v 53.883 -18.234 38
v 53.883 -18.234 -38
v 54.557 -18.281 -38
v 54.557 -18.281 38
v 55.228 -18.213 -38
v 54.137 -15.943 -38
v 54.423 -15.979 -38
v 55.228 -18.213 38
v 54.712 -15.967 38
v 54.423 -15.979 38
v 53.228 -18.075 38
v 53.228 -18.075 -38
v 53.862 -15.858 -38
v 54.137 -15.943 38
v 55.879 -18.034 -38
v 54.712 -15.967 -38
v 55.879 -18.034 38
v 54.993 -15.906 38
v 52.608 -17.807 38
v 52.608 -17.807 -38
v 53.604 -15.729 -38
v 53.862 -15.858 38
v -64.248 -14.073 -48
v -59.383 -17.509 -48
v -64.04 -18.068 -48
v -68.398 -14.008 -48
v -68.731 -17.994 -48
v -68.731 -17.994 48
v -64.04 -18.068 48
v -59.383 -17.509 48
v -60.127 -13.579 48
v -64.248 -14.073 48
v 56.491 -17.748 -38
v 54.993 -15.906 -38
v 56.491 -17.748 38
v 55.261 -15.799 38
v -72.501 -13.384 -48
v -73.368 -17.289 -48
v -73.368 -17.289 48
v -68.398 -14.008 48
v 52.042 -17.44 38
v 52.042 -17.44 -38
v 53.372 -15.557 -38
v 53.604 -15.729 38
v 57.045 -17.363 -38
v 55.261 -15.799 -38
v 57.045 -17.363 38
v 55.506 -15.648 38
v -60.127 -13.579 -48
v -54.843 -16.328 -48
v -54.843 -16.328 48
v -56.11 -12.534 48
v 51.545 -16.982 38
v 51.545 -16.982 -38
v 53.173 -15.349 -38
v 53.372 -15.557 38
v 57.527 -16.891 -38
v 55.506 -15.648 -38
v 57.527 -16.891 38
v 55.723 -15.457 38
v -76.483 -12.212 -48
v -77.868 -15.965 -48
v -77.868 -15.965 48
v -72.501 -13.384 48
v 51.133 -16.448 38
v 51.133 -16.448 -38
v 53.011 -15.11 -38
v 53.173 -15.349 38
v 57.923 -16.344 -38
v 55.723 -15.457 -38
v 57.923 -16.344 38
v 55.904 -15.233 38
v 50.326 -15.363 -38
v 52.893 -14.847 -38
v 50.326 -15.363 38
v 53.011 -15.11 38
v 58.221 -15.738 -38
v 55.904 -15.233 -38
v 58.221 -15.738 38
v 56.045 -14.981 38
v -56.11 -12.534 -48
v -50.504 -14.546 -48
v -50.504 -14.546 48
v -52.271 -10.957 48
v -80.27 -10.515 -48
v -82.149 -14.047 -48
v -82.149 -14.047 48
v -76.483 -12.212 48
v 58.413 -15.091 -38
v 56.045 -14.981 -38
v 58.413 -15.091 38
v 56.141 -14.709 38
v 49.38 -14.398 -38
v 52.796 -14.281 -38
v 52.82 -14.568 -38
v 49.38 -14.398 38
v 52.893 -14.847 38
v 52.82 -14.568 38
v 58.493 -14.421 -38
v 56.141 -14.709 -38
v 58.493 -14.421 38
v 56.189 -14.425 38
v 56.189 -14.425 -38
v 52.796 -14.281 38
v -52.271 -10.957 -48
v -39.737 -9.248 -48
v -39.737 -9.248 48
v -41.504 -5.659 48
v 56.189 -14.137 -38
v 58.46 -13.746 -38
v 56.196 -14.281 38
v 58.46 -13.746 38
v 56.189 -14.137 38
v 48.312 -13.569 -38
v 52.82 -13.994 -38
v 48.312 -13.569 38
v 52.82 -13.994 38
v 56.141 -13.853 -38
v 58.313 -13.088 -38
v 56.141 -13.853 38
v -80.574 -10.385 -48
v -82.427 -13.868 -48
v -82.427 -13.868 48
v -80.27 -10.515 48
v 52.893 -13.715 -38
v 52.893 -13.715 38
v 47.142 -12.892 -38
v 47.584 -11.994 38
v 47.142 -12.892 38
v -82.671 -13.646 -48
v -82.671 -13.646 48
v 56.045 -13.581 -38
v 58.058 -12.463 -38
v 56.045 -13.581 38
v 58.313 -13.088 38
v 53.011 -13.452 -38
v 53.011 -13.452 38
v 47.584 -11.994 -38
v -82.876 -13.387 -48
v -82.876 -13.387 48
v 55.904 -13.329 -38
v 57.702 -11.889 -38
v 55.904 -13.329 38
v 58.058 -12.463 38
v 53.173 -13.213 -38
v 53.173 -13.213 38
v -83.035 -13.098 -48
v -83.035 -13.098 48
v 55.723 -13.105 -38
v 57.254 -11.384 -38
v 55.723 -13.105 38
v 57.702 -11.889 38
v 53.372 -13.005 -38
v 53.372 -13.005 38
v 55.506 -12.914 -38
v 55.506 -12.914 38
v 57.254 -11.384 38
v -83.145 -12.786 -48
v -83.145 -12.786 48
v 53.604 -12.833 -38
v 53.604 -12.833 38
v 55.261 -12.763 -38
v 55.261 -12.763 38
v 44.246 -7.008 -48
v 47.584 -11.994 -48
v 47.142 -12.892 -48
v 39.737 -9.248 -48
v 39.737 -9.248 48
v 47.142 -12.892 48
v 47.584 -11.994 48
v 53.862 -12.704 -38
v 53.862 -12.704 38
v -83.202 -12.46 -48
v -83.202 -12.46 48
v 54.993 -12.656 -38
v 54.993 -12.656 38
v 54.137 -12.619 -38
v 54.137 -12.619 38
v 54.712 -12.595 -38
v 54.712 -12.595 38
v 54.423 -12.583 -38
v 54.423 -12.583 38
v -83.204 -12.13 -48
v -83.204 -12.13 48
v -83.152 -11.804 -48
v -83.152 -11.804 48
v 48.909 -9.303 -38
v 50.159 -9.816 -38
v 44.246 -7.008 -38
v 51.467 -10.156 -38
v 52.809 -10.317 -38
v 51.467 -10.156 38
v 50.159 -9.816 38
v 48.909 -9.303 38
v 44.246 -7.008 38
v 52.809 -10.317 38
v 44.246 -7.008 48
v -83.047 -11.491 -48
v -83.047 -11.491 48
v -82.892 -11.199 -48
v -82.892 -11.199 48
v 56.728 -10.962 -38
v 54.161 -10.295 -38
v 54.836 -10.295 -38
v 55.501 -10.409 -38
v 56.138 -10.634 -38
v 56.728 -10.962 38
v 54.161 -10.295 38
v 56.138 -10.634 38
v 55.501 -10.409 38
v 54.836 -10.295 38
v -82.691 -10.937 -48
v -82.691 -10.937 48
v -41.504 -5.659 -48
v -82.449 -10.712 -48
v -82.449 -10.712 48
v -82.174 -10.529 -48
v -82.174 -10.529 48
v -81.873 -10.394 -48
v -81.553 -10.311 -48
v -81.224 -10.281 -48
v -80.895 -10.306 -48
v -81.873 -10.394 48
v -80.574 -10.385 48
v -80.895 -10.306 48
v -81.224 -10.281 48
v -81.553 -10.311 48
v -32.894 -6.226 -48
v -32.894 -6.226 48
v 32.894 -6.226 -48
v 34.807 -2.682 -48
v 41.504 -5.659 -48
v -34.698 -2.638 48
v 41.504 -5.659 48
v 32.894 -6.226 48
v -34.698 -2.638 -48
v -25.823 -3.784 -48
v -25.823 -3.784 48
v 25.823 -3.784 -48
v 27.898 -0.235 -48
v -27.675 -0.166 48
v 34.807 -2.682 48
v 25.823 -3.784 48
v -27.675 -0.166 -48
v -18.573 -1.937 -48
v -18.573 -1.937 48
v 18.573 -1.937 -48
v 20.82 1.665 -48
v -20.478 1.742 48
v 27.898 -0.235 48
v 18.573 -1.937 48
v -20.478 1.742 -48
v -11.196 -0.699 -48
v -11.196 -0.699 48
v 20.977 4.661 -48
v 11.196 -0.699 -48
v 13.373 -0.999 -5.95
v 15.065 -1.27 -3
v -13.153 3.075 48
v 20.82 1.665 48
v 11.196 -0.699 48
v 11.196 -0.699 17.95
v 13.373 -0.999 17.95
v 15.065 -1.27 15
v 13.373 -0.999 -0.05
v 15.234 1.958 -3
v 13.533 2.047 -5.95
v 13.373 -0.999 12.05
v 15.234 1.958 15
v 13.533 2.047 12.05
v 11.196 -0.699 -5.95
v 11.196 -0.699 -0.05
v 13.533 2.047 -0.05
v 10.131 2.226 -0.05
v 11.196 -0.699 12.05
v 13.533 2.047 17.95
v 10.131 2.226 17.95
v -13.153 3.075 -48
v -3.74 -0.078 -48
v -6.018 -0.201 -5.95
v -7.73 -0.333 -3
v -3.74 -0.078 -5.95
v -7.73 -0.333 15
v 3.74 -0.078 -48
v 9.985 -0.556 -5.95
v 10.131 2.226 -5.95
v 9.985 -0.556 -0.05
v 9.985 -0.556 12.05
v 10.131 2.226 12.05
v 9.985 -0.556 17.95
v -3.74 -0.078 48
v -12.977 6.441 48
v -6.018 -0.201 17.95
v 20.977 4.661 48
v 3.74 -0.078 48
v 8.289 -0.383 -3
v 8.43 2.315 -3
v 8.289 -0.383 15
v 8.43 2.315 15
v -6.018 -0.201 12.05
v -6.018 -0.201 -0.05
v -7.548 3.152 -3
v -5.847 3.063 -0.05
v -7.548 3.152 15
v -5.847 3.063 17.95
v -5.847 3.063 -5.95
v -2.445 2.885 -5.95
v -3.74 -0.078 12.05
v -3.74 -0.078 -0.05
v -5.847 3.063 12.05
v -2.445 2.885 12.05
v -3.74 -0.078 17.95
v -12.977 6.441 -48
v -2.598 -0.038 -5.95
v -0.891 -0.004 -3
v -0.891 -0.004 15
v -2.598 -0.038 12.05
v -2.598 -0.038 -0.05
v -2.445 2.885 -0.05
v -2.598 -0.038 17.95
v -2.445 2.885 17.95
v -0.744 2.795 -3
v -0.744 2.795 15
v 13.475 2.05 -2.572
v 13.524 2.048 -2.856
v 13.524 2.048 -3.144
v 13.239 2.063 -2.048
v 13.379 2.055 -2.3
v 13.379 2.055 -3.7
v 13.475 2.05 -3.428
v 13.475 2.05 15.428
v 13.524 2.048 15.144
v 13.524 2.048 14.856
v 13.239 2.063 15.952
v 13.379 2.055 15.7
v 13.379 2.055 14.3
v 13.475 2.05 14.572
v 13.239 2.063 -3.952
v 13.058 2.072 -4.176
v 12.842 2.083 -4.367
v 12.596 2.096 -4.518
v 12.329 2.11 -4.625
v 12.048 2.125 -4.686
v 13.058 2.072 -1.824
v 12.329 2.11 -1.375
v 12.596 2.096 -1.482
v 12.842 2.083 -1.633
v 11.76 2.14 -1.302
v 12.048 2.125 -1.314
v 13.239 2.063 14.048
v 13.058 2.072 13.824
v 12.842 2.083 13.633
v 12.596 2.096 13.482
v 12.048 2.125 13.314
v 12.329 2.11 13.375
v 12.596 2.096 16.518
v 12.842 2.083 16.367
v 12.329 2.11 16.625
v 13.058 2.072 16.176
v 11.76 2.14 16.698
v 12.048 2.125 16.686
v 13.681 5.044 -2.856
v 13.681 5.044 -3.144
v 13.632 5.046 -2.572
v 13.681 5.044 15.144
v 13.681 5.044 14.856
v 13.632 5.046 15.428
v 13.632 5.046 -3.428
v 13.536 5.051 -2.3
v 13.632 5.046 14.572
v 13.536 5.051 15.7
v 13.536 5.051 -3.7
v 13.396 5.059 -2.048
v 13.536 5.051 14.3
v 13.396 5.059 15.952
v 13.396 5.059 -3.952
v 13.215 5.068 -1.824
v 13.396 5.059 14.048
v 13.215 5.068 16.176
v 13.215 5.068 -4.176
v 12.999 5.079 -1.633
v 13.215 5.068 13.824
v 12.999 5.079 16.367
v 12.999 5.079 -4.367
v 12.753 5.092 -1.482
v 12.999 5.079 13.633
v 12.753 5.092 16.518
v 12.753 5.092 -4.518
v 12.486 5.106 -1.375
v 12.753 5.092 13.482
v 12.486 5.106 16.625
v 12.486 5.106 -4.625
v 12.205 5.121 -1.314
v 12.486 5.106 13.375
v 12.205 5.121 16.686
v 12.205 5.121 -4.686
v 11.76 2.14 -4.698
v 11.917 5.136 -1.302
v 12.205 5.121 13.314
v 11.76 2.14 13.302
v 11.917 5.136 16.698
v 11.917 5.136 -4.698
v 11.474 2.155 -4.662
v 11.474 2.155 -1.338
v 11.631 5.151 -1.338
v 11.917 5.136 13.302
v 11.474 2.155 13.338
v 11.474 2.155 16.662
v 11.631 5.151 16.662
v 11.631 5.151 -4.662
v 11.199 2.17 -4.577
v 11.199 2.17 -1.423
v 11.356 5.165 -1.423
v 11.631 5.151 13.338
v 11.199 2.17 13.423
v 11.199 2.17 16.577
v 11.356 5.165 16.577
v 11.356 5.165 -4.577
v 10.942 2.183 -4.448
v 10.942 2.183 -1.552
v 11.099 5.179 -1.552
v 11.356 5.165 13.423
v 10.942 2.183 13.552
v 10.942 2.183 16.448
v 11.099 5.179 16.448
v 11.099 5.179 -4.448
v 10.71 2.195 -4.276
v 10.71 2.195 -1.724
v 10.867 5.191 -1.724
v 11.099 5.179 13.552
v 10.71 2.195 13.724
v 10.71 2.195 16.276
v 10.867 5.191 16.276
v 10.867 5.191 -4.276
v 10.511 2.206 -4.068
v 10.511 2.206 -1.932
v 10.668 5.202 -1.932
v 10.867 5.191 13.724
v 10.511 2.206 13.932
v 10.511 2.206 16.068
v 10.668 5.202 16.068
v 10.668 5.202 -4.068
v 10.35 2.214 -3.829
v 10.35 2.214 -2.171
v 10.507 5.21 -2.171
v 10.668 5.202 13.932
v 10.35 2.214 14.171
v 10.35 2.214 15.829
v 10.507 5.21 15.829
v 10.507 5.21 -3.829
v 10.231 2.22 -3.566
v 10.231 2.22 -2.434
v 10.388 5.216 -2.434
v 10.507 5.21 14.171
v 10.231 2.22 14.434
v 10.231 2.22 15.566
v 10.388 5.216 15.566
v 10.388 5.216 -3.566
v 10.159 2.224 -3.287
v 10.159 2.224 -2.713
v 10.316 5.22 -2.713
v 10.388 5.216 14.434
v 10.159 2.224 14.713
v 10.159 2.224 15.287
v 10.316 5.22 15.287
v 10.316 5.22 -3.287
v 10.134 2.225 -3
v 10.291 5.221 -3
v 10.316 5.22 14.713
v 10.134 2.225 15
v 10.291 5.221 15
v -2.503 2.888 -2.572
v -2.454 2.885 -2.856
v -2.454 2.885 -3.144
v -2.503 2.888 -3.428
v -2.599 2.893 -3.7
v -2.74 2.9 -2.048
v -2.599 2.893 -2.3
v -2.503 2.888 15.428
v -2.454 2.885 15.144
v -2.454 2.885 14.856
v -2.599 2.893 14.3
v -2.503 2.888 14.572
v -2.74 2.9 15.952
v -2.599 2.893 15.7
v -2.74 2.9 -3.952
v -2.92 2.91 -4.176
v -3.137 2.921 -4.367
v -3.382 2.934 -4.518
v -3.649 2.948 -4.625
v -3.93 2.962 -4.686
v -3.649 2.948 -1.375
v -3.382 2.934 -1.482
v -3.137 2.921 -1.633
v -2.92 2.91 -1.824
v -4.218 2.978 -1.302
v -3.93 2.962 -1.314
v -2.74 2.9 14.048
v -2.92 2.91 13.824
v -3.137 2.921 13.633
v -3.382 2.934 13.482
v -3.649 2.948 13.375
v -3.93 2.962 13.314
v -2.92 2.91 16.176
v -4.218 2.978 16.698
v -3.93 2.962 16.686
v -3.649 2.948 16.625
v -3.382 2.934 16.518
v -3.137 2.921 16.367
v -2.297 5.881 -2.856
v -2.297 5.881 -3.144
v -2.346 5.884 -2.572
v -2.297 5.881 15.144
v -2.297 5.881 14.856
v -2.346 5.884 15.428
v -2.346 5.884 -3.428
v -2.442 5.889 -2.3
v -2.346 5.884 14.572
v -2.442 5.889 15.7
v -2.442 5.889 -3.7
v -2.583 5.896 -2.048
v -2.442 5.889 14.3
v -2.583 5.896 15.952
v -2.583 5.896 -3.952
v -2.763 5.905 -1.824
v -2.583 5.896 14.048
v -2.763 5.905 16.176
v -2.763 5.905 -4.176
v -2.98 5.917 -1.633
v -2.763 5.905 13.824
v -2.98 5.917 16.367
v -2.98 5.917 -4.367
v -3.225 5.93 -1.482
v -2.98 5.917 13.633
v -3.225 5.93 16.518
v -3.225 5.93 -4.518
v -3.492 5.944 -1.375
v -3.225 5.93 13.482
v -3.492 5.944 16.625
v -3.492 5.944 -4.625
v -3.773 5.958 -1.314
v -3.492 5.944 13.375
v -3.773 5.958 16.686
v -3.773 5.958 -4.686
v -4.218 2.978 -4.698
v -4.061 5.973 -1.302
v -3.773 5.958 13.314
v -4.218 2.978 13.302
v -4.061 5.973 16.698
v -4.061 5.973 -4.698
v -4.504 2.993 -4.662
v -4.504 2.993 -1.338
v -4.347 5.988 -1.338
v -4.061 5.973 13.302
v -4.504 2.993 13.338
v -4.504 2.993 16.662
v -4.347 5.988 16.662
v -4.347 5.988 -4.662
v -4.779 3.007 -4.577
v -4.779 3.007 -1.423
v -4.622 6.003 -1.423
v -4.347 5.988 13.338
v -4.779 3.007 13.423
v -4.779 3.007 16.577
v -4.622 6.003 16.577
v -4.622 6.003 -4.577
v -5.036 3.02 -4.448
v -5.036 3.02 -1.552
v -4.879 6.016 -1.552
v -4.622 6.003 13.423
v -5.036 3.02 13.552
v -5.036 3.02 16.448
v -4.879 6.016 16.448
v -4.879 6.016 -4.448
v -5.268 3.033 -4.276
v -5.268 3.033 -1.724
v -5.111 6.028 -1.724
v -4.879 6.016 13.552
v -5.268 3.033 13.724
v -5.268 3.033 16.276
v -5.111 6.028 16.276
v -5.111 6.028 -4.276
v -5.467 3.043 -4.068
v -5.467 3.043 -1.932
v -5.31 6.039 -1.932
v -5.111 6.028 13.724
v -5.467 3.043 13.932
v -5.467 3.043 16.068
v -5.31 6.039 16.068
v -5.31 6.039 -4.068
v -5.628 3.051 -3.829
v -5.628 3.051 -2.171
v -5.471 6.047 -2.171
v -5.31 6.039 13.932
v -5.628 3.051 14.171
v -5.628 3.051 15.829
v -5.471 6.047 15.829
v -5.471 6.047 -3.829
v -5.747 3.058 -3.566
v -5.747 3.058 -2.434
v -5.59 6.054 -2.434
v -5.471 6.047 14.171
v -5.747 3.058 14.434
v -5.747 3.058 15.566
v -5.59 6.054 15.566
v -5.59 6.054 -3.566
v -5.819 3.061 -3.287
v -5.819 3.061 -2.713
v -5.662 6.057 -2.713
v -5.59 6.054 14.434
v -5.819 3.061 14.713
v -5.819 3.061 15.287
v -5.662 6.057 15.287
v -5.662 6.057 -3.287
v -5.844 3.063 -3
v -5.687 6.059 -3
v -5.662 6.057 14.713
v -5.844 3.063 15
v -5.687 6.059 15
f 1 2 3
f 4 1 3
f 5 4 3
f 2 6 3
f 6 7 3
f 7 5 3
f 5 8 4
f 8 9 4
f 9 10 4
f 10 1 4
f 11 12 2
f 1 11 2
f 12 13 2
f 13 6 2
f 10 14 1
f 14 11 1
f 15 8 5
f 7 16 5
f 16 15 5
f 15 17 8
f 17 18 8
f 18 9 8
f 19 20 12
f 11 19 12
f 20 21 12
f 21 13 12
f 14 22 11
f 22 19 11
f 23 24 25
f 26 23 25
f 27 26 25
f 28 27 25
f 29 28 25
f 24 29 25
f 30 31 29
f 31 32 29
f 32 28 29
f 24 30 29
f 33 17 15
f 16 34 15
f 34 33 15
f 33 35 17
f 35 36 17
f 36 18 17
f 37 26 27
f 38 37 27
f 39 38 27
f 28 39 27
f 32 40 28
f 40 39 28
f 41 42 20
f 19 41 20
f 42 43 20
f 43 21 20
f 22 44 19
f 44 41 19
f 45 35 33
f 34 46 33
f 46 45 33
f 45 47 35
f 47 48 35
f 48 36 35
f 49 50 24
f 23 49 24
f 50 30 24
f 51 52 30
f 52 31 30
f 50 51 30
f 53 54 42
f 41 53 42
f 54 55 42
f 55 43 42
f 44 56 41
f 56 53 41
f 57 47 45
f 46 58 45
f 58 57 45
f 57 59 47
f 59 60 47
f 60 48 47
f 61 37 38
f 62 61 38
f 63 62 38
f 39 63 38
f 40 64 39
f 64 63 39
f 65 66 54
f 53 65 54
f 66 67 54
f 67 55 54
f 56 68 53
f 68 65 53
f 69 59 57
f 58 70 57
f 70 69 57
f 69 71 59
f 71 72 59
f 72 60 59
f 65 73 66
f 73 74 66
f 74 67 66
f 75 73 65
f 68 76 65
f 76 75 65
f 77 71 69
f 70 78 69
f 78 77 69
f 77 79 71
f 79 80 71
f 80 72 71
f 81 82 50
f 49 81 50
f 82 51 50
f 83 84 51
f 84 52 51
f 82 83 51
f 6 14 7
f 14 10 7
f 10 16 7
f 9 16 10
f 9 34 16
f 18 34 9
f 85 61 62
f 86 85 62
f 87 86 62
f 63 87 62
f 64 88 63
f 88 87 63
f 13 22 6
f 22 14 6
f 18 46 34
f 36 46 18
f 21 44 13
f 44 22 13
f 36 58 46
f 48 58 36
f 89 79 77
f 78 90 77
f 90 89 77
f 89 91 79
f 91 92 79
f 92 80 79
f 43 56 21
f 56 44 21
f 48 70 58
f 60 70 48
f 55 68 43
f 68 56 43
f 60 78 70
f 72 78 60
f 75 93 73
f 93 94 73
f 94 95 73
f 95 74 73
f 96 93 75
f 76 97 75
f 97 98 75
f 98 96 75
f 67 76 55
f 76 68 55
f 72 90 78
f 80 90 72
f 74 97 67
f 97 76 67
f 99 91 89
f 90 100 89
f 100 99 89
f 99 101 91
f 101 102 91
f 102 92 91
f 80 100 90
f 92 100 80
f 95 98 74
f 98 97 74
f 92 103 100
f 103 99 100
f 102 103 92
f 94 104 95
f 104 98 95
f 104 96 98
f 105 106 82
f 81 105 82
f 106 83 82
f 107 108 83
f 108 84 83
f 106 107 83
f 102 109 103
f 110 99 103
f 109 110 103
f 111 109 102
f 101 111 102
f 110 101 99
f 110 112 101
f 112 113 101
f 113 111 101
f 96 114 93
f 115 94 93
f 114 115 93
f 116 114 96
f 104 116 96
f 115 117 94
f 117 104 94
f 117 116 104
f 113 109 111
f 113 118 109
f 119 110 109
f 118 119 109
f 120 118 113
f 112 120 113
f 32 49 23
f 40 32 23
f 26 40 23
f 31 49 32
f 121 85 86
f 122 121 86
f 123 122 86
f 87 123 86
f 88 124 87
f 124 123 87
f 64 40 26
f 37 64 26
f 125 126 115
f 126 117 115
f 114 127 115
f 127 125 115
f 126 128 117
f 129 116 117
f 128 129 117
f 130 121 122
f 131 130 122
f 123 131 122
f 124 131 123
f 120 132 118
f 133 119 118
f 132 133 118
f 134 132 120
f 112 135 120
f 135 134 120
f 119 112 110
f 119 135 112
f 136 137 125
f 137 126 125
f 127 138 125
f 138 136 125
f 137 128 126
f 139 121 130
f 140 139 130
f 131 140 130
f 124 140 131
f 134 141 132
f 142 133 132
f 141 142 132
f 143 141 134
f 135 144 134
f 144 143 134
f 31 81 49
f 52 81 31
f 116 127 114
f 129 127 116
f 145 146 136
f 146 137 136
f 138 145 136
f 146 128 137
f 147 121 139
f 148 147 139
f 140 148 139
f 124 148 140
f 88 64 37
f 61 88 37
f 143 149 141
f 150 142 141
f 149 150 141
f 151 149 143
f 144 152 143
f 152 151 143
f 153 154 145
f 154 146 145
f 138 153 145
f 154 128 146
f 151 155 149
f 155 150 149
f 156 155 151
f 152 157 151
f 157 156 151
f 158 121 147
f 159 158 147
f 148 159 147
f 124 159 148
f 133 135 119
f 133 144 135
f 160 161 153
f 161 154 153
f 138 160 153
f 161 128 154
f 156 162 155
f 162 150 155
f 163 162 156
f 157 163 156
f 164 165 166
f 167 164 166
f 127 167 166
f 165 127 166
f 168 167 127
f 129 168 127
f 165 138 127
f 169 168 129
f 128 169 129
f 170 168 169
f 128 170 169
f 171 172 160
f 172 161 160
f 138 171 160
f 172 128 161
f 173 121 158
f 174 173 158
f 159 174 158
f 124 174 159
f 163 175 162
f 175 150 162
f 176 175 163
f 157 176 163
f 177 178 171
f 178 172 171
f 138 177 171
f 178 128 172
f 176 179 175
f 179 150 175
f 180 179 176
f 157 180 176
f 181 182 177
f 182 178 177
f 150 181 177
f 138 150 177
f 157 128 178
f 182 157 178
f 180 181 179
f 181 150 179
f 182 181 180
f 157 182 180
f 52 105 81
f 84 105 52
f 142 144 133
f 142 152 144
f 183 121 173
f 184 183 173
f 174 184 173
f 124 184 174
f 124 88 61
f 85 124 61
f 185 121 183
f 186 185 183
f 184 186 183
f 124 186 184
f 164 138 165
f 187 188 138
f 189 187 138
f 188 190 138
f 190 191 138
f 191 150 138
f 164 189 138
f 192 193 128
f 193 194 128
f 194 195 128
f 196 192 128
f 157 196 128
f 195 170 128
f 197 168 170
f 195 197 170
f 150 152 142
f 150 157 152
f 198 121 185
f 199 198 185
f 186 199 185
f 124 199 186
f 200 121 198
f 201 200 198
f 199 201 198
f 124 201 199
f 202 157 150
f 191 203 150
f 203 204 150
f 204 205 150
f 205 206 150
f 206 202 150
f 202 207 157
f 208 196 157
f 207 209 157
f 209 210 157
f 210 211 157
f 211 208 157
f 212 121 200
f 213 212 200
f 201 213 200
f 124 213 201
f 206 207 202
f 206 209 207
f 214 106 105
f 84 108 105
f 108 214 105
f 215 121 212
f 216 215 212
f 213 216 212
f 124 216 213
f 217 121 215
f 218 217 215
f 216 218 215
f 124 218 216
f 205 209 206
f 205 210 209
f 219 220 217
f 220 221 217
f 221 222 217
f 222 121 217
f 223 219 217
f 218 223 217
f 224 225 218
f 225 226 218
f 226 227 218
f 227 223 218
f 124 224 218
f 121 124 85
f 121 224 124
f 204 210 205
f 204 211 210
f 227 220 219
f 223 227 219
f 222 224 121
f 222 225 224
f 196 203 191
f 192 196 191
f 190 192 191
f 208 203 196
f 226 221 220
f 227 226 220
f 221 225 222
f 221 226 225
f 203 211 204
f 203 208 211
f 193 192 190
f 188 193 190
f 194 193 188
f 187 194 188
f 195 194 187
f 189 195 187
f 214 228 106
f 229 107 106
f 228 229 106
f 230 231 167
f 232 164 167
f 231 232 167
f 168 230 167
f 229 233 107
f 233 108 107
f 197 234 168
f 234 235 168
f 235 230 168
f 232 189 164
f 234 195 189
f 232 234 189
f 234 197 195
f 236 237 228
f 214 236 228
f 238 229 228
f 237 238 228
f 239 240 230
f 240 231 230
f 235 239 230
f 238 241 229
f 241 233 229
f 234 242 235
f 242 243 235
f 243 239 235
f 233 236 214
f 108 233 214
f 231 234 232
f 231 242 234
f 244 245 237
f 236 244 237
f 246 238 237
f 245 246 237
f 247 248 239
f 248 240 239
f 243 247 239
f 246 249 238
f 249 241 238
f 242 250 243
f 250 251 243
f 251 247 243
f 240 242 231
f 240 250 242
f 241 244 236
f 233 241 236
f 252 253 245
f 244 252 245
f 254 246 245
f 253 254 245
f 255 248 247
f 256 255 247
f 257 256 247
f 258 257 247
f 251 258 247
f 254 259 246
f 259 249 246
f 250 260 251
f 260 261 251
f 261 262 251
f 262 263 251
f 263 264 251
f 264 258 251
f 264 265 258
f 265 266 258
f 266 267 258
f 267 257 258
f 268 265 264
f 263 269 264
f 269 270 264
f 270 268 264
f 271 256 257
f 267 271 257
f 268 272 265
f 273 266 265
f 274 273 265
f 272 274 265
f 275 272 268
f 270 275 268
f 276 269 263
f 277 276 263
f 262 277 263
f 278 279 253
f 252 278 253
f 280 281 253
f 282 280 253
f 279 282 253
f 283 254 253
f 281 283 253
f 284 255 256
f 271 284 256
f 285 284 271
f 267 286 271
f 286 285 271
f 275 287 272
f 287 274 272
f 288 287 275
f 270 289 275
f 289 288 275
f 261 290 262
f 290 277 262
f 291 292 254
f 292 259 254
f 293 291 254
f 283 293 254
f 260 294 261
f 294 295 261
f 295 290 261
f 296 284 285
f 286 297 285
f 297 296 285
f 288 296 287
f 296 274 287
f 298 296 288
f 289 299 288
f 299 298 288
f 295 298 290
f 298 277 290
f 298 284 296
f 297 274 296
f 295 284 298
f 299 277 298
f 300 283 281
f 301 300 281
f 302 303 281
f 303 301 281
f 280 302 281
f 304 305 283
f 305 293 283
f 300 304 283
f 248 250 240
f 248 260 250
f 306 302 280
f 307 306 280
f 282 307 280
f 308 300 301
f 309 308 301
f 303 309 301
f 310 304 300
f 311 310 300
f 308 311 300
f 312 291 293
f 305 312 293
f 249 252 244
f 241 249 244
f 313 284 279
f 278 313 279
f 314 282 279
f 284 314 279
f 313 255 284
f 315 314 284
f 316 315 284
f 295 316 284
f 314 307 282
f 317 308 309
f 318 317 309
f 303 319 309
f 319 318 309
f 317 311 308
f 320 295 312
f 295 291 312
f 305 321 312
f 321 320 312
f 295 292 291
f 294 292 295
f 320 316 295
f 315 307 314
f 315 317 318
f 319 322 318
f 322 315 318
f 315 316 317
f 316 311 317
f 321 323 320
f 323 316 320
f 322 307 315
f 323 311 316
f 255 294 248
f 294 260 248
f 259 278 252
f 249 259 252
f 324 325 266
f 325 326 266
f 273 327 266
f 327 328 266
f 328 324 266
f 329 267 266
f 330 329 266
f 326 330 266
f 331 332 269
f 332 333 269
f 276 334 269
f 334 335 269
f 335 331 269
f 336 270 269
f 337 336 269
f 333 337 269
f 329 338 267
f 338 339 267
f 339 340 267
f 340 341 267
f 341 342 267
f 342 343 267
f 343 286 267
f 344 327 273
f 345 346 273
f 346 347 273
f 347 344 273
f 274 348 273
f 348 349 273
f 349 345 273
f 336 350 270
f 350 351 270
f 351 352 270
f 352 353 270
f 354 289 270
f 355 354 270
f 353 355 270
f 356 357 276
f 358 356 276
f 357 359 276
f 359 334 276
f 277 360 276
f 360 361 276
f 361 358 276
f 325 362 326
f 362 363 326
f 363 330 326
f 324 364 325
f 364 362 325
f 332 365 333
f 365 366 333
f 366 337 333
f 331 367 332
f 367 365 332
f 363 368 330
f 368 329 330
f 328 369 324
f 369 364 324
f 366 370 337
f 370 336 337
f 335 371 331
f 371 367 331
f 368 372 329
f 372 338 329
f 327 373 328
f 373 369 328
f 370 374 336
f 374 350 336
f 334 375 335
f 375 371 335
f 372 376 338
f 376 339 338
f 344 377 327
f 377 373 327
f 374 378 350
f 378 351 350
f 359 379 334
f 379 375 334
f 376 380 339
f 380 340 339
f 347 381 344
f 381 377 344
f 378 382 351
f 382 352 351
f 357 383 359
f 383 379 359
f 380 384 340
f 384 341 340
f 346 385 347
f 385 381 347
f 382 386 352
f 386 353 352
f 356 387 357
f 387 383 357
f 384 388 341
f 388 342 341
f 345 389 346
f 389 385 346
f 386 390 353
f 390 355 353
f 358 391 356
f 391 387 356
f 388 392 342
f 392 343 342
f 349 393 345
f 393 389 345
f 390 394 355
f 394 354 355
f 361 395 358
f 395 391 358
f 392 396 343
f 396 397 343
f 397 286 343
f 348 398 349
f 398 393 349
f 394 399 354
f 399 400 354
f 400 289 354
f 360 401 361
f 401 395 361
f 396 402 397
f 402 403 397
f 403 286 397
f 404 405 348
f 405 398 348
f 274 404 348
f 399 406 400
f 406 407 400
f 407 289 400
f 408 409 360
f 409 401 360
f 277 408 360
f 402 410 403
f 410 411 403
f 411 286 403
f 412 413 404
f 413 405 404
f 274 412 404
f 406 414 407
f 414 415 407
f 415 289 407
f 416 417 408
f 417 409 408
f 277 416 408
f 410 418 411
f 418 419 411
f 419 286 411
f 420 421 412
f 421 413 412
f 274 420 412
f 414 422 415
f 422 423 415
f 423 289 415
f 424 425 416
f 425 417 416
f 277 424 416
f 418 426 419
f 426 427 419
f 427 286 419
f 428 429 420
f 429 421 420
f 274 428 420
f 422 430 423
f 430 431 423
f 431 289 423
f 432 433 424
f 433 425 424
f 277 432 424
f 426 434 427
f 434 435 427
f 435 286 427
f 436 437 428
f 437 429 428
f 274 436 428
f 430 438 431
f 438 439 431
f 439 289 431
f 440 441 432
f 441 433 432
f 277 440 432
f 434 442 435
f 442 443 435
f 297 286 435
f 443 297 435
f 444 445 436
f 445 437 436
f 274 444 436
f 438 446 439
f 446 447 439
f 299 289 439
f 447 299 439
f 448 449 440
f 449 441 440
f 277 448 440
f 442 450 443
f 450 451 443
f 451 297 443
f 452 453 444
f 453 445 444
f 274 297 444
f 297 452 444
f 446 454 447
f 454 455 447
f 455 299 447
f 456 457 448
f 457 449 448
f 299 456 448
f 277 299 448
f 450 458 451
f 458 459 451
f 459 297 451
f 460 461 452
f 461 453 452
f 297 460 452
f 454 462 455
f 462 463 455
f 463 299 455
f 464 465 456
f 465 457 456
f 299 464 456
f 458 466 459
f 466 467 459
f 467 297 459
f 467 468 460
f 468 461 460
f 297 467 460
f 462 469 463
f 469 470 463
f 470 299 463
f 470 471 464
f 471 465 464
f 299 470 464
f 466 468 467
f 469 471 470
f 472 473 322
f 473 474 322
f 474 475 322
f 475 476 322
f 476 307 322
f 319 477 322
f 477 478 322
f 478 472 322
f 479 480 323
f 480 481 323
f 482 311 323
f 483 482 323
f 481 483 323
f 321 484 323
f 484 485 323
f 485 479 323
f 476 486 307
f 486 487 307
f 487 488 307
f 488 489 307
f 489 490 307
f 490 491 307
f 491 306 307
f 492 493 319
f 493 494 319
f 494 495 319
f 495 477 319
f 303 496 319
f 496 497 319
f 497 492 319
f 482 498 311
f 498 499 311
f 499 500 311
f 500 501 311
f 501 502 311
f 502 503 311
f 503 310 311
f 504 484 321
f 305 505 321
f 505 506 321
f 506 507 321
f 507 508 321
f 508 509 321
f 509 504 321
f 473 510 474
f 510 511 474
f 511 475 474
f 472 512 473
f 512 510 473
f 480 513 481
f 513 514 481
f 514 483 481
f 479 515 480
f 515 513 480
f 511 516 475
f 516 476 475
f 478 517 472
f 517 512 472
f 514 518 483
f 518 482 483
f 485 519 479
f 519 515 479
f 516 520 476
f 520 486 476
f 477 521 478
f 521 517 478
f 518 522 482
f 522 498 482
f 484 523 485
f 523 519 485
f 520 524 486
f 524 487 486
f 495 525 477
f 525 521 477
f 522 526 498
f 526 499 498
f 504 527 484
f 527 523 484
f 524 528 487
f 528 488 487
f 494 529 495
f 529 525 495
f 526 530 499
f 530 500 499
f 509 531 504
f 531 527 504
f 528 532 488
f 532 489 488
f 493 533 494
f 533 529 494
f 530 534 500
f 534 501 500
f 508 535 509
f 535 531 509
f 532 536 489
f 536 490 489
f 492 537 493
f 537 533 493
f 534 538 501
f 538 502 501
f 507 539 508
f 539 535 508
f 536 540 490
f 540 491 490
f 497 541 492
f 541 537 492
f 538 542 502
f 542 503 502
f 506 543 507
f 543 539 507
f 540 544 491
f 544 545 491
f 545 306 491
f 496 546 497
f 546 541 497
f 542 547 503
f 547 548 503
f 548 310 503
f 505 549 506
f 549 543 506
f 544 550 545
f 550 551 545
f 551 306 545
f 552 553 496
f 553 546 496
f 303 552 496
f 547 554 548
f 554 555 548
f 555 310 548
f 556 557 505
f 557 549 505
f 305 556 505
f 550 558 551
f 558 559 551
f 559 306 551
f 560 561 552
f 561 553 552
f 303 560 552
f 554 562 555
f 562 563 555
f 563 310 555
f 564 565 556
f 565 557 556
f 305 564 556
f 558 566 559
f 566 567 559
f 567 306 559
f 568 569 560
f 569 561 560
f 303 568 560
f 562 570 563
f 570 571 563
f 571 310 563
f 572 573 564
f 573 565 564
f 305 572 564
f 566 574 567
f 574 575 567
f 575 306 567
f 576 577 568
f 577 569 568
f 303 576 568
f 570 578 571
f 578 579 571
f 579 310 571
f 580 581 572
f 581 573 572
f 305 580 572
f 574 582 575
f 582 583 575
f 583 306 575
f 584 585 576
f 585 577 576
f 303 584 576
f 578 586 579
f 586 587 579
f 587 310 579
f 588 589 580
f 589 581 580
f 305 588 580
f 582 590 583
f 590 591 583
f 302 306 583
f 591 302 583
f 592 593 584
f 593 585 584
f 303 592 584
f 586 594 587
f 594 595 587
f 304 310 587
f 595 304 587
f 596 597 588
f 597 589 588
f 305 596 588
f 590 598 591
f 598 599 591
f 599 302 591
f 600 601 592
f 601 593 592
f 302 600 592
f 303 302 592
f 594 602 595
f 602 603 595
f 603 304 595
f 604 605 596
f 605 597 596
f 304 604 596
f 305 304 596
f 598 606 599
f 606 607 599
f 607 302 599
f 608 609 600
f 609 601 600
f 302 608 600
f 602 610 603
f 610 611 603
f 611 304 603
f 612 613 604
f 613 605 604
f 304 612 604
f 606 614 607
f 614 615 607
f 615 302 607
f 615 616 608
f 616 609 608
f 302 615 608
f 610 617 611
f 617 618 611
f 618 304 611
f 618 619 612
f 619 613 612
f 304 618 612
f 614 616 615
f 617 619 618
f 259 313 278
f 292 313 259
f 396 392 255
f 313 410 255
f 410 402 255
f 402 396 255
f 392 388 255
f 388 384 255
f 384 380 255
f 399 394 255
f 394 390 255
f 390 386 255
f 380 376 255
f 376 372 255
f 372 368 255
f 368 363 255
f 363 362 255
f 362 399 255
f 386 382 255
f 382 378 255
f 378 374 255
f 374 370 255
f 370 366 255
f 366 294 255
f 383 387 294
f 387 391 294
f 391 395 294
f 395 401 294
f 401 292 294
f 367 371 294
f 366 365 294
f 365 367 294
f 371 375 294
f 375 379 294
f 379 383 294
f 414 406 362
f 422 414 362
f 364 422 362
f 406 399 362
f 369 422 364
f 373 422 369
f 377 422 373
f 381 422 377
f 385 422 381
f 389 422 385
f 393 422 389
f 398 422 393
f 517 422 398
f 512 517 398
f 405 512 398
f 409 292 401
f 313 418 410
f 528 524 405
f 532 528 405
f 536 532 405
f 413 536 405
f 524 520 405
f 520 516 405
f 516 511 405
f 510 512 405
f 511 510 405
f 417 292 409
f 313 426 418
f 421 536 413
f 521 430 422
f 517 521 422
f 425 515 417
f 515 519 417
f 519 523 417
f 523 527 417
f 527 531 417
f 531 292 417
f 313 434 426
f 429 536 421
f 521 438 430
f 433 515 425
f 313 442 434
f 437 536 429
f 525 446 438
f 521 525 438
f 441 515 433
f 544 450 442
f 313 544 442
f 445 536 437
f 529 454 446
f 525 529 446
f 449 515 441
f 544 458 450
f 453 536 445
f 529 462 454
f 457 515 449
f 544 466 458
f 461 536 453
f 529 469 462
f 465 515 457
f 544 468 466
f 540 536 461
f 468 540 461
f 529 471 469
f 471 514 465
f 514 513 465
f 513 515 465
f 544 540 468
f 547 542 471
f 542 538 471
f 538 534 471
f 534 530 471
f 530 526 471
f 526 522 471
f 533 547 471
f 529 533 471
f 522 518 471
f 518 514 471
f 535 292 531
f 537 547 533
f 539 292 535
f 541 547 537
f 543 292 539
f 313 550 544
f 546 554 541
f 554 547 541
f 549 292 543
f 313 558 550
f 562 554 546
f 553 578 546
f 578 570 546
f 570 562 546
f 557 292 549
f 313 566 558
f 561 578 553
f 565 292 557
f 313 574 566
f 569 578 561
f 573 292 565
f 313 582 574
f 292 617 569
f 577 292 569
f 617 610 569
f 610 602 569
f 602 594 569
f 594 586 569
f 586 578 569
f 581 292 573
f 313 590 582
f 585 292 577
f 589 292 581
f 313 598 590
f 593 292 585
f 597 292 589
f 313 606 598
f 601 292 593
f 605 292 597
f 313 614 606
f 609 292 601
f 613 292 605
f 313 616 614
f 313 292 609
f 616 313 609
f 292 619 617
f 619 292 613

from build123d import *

# Parameters (mm, degrees)
CROQUIS1_R                   = 1.7
SALIENTE_EXTRUIR1_DEPTH      = 48
REDONDEO1_R                  = 10
CORTAR_EXTRUIR1_DEPTH        = 10
CHAFL_N1_SIZE                = 3
CHAFL_N1_SIZE2               = 5.196152423
CHAFL_N1_PART_2_SIZE         = 3
CHAFL_N1_PART_2_SIZE2        = 5.196152423
SALIENTE_EXTRUIR2_DEPTH      = 48
SALIENTE_EXTRUIR2_DEPTH_BACK = 48
CORTAR_EXTRUIR3_REACH        = 30.364
CROQUIS6_R                   = 1.7
CORTAR_EXTRUIR4_REACH        = 27.364


with BuildPart() as part:
    # Croquis1 → Saliente-Extruir1 (new body, symmetric)
    with BuildSketch(Plane.XY):
        with BuildLine():
            Line((-39.737417582, -9.247677161), (-50.50439396, -14.545999505))
            ThreePointArc((-50.50439396, -14.545999505), (-66.386844231, -18.110333527), (-82.148948738, -14.04674335))
            ThreePointArc((-82.148948738, -14.04674335), (-82.975471065, -11.341773693), (-80.270501408, -10.515251366))
            ThreePointArc((-80.270501408, -10.515251366), (-66.323744082, -14.110831262), (-52.270501408, -10.957007379))
            Line((-52.270501408, -10.957007379), (-41.50352503, -5.658685035))
            ThreePointArc((-41.50352503, -5.658685035), (0, 4), (41.50352503, -5.658685035))
            Line((41.50352503, -5.658685035), (52.270501408, -10.957007379))
            ThreePointArc((52.270501408, -10.957007379), (58.084598166, -16.047104806), (50.50439396, -14.545999505))
            Line((50.50439396, -14.545999505), (39.737417582, -9.247677161))
            ThreePointArc((39.737417582, -9.247677161), (0, 0), (-39.737417582, -9.247677161))
        make_face()
        with Locations((54.49560604, -14.280997358)):
            Circle(CROQUIS1_R, mode=Mode.SUBTRACT)
    extrude(amount=SALIENTE_EXTRUIR1_DEPTH, both=True)

    # Redondeo1
    redondeo1_edges = [part.edges().sort_by_distance(p)[0] for p in [
        (52.270501408, -10.957007379, 0),
        (50.50439396, -14.545999505, 0),
    ]]
    fillet(redondeo1_edges, radius=REDONDEO1_R)

    # Croquis3 → Cortar-Extruir1 (cut)
    with BuildSketch(Plane.XY.offset(48)):
        with BuildLine():
            Line((48.908512195, -9.302605814), (47.142404747, -12.89159794))
            ThreePointArc((47.142404747, -12.89159794), (49.37979166, -14.398010057), (51.133186064, -16.4475919))
            ThreePointArc((51.133186064, -16.4475919), (58.084598166, -16.047104806), (54.160798833, -10.295033969))
            ThreePointArc((54.160798833, -10.295033969), (51.467117745, -10.156254046), (48.908512195, -9.302605814))
        make_face()
    cortar_extruir1 = extrude(amount=-CORTAR_EXTRUIR1_DEPTH, mode=Mode.SUBTRACT)

    # Simetría1: Cortar-Extruir1 across plane
    add(cortar_extruir1.mirror(Plane.XY), mode=Mode.SUBTRACT)

    # Chaflán1
    chafl_n1_edges = [part.edges().sort_by_distance(p)[0] for p in [
        (48.908512195, -9.302605814, 43),
    ]]
    chafl_n1_side = [part.faces().sort_by_distance(p)[0] for p in [
        (48.025458471, -11.097101877, 43),
    ]]
    chamfer(chafl_n1_edges, length=CHAFL_N1_SIZE, length2=CHAFL_N1_SIZE2, reference=chafl_n1_side[0])

    # Chaflán1 part 2
    chafl_n1_part_2_edges = [part.edges().sort_by_distance(p)[0] for p in [
        (48.908512195, -9.302605814, -43),
    ]]
    chafl_n1_part_2_side = [part.faces().sort_by_distance(p)[0] for p in [
        (48.025458471, -11.097101877, -43),
    ]]
    chamfer(chafl_n1_part_2_edges, length=CHAFL_N1_PART_2_SIZE, length2=CHAFL_N1_PART_2_SIZE2, reference=chafl_n1_part_2_side[0])

    # Croquis5 → Saliente-Extruir2 (add, two sides)
    with BuildSketch(Plane.XY) as saliente_extruir2_sk:
        with BuildLine():
            Line((-12.976702091, 6.440682618), (20.976702091, 4.661260106))
            Line((20.976702091, 4.661260106), (20.819694222, 1.665371501))
            ThreePointArc((20.819694222, 1.665371501), (3.897584771, 3.91916116), (-13.153078528, 3.075219716))
            Line((-13.153078528, 3.075219716), (-12.976702091, 6.440682618))
        make_face()
    extrude(amount=SALIENTE_EXTRUIR2_DEPTH)
    extrude(saliente_extruir2_sk.sketch, amount=-SALIENTE_EXTRUIR2_DEPTH_BACK)

    # Croquis6 → Cortar-Extruir3 (cut, up to next)
    with BuildSketch(Plane(origin=(0.301073462, 5.744823887, 0), x_dir=(0.998629535, -0.052335956, 0), z_dir=(0.052335956, 0.998629535, 0)), mode=Mode.PRIVATE) as cortar_extruir3_sk1:
        with Locations((-4.295997255, 3)):
            Circle(CROQUIS6_R)
    cortar_extruir3_tool1 = extrude(cortar_extruir3_sk1.sketch, amount=-CORTAR_EXTRUIR3_REACH, mode=Mode.PRIVATE) & part.part
    add(cortar_extruir3_tool1.solids().sort_by_distance((-3.989036, 5.969659, -3))[0], mode=Mode.SUBTRACT)
    # Croquis6 → Cortar-Extruir3 (cut, up to next)
    with BuildSketch(Plane(origin=(0.301073462, 5.744823887, 0), x_dir=(0.998629535, -0.052335956, 0), z_dir=(0.052335956, 0.998629535, 0)), mode=Mode.PRIVATE) as cortar_extruir3_sk2:
        with Locations((11.704002745, 3)):
            Circle(CROQUIS6_R)
    cortar_extruir3_tool2 = extrude(cortar_extruir3_sk2.sketch, amount=-CORTAR_EXTRUIR3_REACH, mode=Mode.PRIVATE) & part.part
    add(cortar_extruir3_tool2.solids().sort_by_distance((11.989036, 5.132284, -3))[0], mode=Mode.SUBTRACT)
    # Croquis6 → Cortar-Extruir3 (cut, up to next)
    with BuildSketch(Plane(origin=(0.301073462, 5.744823887, 0), x_dir=(0.998629535, -0.052335956, 0), z_dir=(0.052335956, 0.998629535, 0)), mode=Mode.PRIVATE) as cortar_extruir3_sk3:
        with Locations((11.704002745, -15)):
            Circle(CROQUIS6_R)
    cortar_extruir3_tool3 = extrude(cortar_extruir3_sk3.sketch, amount=-CORTAR_EXTRUIR3_REACH, mode=Mode.PRIVATE) & part.part
    add(cortar_extruir3_tool3.solids().sort_by_distance((11.989036, 5.132284, 15))[0], mode=Mode.SUBTRACT)
    # Croquis6 → Cortar-Extruir3 (cut, up to next)
    with BuildSketch(Plane(origin=(0.301073462, 5.744823887, 0), x_dir=(0.998629535, -0.052335956, 0), z_dir=(0.052335956, 0.998629535, 0)), mode=Mode.PRIVATE) as cortar_extruir3_sk4:
        with Locations((-4.295997255, -15)):
            Circle(CROQUIS6_R)
    cortar_extruir3_tool4 = extrude(cortar_extruir3_sk4.sketch, amount=-CORTAR_EXTRUIR3_REACH, mode=Mode.PRIVATE) & part.part
    add(cortar_extruir3_tool4.solids().sort_by_distance((-3.989036, 5.969659, 15))[0], mode=Mode.SUBTRACT)

    # Croquis7 → Cortar-Extruir4 (cut, up to next)
    with BuildSketch(Plane(origin=(0.144065594, 2.748935283, 0), x_dir=(0.998629535, -0.052335956, 0), z_dir=(0.052335956, 0.998629535, 0)), mode=Mode.PRIVATE) as cortar_extruir4_sk1:
        Polygon((-0.889630667, 3), (-2.592813961, 5.95), (-5.999180549, 5.95), (-7.702363843, 3), (-5.999180549, 0.05), (-2.592813961, 0.05), align=None)
    cortar_extruir4_tool1 = extrude(cortar_extruir4_sk1.sketch, amount=-CORTAR_EXTRUIR4_REACH, mode=Mode.PRIVATE) & part.part
    add(cortar_extruir4_tool1.solids().sort_by_distance((-4.146044, 2.97377, -3))[0], mode=Mode.SUBTRACT)
    # Croquis7 → Cortar-Extruir4 (cut, up to next)
    with BuildSketch(Plane(origin=(0.144065594, 2.748935283, 0), x_dir=(0.998629535, -0.052335956, 0), z_dir=(0.052335956, 0.998629535, 0)), mode=Mode.PRIVATE) as cortar_extruir4_sk2:
        Polygon((15.110369333, 3), (13.407186039, 5.95), (10.000819451, 5.95), (8.297636157, 3), (10.000819451, 0.05), (13.407186039, 0.05), align=None)
    cortar_extruir4_tool2 = extrude(cortar_extruir4_sk2.sketch, amount=-CORTAR_EXTRUIR4_REACH, mode=Mode.PRIVATE) & part.part
    add(cortar_extruir4_tool2.solids().sort_by_distance((11.832028, 2.136395, -3))[0], mode=Mode.SUBTRACT)
    # Croquis7 → Cortar-Extruir4 (cut, up to next)
    with BuildSketch(Plane(origin=(0.144065594, 2.748935283, 0), x_dir=(0.998629535, -0.052335956, 0), z_dir=(0.052335956, 0.998629535, 0)), mode=Mode.PRIVATE) as cortar_extruir4_sk3:
        Polygon((-0.889630667, -15), (-2.592813961, -12.05), (-5.999180549, -12.05), (-7.702363843, -15), (-5.999180549, -17.95), (-2.592813961, -17.95), align=None)
    cortar_extruir4_tool3 = extrude(cortar_extruir4_sk3.sketch, amount=-CORTAR_EXTRUIR4_REACH, mode=Mode.PRIVATE) & part.part
    add(cortar_extruir4_tool3.solids().sort_by_distance((-4.146044, 2.97377, 15))[0], mode=Mode.SUBTRACT)
    # Croquis7 → Cortar-Extruir4 (cut, up to next)
    with BuildSketch(Plane(origin=(0.144065594, 2.748935283, 0), x_dir=(0.998629535, -0.052335956, 0), z_dir=(0.052335956, 0.998629535, 0)), mode=Mode.PRIVATE) as cortar_extruir4_sk4:
        Polygon((15.110369333, -15), (13.407186039, -12.05), (10.000819451, -12.05), (8.297636157, -15), (10.000819451, -17.95), (13.407186039, -17.95), align=None)
    cortar_extruir4_tool4 = extrude(cortar_extruir4_sk4.sketch, amount=-CORTAR_EXTRUIR4_REACH, mode=Mode.PRIVATE) & part.part
    add(cortar_extruir4_tool4.solids().sort_by_distance((11.832028, 2.136395, 15))[0], mode=Mode.SUBTRACT)


solid = part.part
